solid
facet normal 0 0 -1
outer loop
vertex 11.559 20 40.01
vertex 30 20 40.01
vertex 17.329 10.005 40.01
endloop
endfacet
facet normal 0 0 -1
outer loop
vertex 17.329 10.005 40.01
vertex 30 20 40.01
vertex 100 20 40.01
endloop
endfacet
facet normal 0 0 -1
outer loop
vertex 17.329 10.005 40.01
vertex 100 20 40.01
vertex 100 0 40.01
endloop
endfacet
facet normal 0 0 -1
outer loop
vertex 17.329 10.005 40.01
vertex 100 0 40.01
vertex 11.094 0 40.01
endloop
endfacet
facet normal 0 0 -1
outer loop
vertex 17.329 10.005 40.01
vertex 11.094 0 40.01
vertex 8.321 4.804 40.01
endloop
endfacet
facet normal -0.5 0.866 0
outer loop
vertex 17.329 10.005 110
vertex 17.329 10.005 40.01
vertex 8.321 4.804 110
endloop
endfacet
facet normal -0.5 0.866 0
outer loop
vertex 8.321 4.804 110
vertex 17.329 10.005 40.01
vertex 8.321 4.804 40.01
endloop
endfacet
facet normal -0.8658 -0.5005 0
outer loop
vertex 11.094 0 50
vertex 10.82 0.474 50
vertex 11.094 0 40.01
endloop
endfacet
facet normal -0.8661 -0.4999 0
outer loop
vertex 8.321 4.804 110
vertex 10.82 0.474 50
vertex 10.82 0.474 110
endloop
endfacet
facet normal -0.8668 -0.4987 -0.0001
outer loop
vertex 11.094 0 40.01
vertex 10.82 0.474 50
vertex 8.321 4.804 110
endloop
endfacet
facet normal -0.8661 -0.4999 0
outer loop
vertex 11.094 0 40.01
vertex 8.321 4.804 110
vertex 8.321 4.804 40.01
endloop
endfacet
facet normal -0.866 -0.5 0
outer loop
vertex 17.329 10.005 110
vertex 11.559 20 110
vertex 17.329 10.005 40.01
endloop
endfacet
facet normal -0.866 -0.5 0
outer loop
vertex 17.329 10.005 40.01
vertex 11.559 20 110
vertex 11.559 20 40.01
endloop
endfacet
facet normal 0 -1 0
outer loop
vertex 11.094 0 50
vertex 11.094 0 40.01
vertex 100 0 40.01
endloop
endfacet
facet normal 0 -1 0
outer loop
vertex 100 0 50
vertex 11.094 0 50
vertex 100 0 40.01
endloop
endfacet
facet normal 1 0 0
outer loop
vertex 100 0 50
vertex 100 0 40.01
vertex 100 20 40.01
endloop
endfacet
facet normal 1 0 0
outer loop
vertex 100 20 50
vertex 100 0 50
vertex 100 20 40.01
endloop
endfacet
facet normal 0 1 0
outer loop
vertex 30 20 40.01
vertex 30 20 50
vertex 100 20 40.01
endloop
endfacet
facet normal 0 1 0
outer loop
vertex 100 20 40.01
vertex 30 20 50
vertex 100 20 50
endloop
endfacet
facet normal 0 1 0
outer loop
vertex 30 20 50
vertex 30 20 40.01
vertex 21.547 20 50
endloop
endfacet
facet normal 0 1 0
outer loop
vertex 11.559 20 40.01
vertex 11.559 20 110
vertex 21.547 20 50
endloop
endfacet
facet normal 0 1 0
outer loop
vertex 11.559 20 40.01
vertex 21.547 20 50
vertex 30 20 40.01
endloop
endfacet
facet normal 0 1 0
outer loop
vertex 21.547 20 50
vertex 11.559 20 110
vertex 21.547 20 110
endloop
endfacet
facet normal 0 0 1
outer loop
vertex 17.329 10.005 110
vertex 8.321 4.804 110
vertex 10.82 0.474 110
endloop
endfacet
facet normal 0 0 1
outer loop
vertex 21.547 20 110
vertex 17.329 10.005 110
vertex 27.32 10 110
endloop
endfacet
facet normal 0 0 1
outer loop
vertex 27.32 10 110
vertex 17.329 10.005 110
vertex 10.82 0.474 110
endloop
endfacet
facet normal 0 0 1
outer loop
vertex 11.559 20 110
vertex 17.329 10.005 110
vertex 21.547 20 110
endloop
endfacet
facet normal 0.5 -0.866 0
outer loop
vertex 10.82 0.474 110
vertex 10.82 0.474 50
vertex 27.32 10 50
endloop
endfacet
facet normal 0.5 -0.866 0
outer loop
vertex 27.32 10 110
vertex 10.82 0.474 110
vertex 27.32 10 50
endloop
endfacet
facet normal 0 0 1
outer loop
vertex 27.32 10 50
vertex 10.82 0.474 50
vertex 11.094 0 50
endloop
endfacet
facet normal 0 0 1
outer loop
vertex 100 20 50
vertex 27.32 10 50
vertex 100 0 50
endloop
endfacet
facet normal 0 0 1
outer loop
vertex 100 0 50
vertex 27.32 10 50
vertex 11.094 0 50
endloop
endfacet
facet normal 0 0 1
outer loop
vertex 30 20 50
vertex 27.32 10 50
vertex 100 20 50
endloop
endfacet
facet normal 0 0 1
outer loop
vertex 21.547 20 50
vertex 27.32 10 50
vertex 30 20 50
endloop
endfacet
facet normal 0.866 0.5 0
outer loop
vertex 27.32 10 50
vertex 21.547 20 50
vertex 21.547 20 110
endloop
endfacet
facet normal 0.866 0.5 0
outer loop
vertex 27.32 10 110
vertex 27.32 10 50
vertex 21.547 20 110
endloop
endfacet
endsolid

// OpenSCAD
difference(){

translate([0,0,10])
union(){

cube([100,20,40]);
translate([10,0,0])
rotate([0,0,30])

cube([20,40,100]);
}

union(){
cube([100.01,20.01,40.01]);

rotate([0,0,30])
translate([0,0,0])
cube([20.01,40.01,180]);
}

translate([-10,20,0])
cube([40,40,140]);


translate([-12,-20,0])
rotate([0,0,30])
cube([30,30,170]);
}
